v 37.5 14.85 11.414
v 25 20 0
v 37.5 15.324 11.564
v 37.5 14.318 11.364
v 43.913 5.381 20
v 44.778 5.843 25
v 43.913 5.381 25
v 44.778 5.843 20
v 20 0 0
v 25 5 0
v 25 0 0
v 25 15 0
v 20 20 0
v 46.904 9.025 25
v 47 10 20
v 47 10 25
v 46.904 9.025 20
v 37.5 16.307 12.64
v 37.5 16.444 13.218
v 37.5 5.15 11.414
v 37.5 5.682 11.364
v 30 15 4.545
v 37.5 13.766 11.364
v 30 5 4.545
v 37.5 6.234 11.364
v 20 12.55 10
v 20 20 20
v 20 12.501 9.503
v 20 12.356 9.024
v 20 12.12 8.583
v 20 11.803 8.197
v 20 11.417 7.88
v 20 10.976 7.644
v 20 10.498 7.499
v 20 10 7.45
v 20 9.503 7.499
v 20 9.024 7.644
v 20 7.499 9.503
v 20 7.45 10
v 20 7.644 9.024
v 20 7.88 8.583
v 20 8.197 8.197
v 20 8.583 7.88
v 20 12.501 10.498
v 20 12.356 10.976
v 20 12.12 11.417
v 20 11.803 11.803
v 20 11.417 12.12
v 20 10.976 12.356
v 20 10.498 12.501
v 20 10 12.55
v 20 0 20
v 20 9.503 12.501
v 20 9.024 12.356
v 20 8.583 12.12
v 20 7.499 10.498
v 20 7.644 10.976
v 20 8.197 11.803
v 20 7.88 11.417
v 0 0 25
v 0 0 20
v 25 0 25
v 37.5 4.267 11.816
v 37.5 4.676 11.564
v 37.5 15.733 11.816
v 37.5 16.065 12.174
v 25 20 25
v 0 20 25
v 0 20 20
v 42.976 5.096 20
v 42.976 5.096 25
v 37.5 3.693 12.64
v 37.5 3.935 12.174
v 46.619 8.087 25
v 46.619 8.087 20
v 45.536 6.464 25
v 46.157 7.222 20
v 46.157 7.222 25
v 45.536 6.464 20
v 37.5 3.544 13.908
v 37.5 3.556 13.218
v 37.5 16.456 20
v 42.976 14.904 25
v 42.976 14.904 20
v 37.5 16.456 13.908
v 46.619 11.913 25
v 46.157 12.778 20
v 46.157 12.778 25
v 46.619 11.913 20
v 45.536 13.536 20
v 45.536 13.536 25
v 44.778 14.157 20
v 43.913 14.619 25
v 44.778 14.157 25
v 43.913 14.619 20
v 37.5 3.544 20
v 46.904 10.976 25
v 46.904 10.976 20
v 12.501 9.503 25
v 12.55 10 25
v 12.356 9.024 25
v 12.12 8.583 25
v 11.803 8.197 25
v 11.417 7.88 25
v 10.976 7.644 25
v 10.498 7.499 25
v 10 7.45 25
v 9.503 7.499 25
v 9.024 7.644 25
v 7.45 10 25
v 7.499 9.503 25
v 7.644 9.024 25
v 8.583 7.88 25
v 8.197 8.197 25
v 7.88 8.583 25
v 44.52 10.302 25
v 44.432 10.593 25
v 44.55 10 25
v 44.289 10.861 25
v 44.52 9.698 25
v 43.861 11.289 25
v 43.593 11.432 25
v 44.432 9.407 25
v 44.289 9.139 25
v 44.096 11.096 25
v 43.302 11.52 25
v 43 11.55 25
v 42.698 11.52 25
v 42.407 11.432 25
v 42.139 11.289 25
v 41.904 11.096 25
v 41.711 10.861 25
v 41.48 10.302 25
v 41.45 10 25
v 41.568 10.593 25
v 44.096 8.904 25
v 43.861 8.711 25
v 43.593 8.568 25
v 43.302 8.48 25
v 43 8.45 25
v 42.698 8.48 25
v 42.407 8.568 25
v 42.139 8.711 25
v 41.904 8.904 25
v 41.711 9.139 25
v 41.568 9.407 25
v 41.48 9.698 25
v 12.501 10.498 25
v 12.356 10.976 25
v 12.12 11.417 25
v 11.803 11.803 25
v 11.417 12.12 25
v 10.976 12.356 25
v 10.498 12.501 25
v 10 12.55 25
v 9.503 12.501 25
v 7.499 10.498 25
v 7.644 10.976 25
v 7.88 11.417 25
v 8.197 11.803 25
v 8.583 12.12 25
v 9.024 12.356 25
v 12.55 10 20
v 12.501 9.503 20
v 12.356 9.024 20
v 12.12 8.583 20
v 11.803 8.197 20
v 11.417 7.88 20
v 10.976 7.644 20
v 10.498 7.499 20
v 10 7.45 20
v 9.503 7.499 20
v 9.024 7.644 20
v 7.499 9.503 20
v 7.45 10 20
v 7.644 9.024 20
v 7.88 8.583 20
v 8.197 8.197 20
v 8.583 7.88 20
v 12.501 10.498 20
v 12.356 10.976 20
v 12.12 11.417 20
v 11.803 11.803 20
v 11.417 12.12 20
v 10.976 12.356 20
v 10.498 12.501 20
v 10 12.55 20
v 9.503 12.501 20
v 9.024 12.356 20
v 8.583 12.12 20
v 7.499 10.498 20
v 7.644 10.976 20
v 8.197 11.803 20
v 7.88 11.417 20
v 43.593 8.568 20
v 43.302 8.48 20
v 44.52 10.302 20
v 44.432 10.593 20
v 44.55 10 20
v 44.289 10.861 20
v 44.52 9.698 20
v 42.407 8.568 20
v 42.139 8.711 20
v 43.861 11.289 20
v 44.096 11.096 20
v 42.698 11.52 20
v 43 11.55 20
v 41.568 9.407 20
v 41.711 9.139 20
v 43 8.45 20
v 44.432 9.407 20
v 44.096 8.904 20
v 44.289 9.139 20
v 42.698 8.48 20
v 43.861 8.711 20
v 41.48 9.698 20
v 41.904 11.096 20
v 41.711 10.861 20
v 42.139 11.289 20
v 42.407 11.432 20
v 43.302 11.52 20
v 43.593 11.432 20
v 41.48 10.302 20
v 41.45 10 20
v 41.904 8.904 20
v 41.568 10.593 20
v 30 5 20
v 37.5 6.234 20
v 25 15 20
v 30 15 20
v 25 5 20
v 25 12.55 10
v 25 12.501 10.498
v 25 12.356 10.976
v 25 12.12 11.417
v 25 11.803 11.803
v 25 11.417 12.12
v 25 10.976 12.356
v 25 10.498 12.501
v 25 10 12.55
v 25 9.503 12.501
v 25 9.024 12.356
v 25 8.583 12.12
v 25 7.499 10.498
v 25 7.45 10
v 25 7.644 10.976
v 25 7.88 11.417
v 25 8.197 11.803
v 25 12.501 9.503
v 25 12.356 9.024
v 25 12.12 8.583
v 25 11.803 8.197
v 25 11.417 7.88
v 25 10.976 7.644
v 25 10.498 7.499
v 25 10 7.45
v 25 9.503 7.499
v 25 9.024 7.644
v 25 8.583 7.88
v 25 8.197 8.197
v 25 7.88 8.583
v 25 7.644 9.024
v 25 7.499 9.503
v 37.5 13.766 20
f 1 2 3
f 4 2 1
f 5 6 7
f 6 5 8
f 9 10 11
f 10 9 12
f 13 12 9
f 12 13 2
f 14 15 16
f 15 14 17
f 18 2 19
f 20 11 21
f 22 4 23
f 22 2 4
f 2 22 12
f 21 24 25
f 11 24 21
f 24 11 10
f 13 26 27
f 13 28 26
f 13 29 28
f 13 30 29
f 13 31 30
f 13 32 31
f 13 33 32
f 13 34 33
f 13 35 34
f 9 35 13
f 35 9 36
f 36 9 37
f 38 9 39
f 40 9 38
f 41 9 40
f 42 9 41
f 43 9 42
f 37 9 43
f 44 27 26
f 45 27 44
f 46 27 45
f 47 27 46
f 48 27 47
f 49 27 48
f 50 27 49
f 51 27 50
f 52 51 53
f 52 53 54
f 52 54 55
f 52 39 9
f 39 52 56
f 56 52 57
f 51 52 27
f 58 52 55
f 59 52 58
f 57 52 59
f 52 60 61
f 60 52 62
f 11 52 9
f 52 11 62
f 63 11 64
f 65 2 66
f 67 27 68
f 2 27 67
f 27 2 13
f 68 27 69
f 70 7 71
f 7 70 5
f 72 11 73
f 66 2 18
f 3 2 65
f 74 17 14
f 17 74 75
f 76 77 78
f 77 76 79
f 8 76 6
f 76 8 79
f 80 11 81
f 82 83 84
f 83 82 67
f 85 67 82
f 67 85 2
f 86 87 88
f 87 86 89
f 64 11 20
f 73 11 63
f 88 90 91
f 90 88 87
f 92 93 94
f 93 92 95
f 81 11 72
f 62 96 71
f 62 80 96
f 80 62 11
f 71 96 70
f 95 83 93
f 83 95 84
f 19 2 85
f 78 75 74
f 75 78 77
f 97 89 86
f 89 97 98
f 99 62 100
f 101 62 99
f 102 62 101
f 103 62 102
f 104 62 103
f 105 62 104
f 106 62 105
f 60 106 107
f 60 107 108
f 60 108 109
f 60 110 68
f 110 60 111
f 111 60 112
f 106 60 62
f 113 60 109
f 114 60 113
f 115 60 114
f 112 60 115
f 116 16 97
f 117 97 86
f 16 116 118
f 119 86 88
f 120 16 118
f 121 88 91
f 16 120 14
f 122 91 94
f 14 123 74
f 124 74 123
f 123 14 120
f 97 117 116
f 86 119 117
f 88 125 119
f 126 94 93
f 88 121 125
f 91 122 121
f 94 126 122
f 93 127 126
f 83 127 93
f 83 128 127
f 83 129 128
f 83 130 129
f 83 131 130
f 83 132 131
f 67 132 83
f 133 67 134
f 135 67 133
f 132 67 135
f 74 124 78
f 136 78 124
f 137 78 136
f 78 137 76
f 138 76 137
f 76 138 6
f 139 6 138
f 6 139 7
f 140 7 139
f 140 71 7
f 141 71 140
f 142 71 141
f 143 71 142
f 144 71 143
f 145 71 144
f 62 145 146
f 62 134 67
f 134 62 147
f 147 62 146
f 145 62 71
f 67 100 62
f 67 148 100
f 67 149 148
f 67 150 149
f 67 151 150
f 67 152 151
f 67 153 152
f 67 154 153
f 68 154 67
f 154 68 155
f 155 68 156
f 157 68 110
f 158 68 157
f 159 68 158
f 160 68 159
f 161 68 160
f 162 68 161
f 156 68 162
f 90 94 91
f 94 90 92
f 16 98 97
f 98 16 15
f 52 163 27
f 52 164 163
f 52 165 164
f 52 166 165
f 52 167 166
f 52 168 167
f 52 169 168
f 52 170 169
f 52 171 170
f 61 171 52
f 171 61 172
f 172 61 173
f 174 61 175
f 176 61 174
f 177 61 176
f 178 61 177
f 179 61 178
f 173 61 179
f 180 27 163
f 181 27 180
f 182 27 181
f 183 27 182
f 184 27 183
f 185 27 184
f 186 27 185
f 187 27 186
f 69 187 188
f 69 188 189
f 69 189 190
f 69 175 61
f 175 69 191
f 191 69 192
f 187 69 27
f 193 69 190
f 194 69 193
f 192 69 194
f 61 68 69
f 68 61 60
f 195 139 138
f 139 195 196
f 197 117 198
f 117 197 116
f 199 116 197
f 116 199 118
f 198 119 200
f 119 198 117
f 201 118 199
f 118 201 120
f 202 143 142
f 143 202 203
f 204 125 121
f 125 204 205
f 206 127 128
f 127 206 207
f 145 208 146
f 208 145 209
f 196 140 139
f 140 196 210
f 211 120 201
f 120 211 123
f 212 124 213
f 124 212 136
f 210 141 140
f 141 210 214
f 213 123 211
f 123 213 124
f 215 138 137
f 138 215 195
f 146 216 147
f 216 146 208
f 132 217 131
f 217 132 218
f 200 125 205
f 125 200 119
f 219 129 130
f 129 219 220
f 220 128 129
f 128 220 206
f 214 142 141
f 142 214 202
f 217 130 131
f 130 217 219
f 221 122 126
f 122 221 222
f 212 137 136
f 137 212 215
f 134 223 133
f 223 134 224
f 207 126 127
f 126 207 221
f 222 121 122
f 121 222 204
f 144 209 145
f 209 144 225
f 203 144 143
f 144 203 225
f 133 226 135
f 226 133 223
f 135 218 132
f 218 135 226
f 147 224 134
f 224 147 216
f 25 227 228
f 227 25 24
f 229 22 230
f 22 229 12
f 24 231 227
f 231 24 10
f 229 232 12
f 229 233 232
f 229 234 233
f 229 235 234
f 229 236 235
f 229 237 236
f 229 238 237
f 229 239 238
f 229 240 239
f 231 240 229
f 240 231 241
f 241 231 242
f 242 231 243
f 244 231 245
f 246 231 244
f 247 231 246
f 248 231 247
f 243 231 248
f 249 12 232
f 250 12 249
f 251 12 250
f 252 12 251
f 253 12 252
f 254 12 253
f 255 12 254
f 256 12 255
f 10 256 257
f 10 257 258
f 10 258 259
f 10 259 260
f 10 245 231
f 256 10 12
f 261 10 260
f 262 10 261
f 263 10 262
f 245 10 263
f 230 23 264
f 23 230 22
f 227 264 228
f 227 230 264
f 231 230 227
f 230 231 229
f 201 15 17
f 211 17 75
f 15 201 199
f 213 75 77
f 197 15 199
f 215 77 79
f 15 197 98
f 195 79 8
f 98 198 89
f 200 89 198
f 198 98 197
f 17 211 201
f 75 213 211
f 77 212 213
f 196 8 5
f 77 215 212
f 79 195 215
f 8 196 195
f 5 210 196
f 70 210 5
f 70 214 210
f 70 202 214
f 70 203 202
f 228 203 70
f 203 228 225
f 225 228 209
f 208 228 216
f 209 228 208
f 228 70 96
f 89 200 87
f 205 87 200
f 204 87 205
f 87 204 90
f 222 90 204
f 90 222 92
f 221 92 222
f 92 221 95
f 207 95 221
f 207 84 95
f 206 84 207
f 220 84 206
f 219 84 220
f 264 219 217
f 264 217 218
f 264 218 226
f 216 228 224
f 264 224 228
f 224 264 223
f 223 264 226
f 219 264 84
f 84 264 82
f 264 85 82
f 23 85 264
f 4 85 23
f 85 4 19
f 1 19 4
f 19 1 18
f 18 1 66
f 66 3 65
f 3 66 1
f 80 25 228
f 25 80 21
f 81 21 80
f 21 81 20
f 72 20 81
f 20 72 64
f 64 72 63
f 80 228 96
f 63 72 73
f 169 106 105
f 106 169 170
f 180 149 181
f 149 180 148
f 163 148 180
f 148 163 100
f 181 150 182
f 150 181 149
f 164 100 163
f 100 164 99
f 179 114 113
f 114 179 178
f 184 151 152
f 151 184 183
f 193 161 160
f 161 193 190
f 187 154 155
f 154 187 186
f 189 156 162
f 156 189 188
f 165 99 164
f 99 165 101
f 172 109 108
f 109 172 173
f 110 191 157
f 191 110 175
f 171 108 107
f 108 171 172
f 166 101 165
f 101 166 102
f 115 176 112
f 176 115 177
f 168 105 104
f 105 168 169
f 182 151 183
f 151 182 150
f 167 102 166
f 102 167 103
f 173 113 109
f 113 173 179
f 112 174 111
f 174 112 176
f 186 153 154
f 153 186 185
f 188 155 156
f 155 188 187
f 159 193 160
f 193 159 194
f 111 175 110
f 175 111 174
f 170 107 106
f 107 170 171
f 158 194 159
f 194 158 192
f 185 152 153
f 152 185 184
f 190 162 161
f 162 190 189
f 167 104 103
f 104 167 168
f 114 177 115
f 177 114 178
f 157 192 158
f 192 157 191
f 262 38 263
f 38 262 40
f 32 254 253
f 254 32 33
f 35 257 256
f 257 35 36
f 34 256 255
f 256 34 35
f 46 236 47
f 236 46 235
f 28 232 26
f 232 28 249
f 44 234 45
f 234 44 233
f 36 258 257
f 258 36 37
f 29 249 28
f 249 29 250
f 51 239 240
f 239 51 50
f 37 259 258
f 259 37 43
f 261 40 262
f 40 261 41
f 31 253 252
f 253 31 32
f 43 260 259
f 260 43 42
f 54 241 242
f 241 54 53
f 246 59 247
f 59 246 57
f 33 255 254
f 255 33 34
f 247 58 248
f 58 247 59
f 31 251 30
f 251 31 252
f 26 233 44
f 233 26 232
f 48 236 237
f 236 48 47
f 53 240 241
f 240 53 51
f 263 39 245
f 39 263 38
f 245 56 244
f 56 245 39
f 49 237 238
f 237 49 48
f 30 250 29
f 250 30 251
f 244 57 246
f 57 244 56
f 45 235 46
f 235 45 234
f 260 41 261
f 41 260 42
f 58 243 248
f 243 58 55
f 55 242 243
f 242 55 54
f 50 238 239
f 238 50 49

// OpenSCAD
module heatbed_mount() {
    $fn=32;
    difference() {
        union(){
            translate([20, 0, 0]) hull(){
                cube([5, 20, 25]);
                translate([22,10,20]) cylinder(d=10, h=5);
            }
            translate([0, 0, 20]) cube([20, 20, 5]);
            
        }
    
        union(){
            translate([20+23, 10, 5]) cylinder(d=3.1, h=20);
            translate([25, 5, 0]) hull(){
                cube([5, 10, 20]);
                translate([20,5,15]) cylinder(d=5, h=5);
            };
            translate([37.5,2.5,10]) cube([10, 20, 10]);
            translate([10,10,20]) cylinder(d=5.1, h=5);
            translate([20,10,10]) rotate([0, 90, 0]) #cylinder(d=5.1, h=5);
        };
    };
}

heatbed_mount();

//translate([0, 7.5, 25]) cube([43,5,5]);
